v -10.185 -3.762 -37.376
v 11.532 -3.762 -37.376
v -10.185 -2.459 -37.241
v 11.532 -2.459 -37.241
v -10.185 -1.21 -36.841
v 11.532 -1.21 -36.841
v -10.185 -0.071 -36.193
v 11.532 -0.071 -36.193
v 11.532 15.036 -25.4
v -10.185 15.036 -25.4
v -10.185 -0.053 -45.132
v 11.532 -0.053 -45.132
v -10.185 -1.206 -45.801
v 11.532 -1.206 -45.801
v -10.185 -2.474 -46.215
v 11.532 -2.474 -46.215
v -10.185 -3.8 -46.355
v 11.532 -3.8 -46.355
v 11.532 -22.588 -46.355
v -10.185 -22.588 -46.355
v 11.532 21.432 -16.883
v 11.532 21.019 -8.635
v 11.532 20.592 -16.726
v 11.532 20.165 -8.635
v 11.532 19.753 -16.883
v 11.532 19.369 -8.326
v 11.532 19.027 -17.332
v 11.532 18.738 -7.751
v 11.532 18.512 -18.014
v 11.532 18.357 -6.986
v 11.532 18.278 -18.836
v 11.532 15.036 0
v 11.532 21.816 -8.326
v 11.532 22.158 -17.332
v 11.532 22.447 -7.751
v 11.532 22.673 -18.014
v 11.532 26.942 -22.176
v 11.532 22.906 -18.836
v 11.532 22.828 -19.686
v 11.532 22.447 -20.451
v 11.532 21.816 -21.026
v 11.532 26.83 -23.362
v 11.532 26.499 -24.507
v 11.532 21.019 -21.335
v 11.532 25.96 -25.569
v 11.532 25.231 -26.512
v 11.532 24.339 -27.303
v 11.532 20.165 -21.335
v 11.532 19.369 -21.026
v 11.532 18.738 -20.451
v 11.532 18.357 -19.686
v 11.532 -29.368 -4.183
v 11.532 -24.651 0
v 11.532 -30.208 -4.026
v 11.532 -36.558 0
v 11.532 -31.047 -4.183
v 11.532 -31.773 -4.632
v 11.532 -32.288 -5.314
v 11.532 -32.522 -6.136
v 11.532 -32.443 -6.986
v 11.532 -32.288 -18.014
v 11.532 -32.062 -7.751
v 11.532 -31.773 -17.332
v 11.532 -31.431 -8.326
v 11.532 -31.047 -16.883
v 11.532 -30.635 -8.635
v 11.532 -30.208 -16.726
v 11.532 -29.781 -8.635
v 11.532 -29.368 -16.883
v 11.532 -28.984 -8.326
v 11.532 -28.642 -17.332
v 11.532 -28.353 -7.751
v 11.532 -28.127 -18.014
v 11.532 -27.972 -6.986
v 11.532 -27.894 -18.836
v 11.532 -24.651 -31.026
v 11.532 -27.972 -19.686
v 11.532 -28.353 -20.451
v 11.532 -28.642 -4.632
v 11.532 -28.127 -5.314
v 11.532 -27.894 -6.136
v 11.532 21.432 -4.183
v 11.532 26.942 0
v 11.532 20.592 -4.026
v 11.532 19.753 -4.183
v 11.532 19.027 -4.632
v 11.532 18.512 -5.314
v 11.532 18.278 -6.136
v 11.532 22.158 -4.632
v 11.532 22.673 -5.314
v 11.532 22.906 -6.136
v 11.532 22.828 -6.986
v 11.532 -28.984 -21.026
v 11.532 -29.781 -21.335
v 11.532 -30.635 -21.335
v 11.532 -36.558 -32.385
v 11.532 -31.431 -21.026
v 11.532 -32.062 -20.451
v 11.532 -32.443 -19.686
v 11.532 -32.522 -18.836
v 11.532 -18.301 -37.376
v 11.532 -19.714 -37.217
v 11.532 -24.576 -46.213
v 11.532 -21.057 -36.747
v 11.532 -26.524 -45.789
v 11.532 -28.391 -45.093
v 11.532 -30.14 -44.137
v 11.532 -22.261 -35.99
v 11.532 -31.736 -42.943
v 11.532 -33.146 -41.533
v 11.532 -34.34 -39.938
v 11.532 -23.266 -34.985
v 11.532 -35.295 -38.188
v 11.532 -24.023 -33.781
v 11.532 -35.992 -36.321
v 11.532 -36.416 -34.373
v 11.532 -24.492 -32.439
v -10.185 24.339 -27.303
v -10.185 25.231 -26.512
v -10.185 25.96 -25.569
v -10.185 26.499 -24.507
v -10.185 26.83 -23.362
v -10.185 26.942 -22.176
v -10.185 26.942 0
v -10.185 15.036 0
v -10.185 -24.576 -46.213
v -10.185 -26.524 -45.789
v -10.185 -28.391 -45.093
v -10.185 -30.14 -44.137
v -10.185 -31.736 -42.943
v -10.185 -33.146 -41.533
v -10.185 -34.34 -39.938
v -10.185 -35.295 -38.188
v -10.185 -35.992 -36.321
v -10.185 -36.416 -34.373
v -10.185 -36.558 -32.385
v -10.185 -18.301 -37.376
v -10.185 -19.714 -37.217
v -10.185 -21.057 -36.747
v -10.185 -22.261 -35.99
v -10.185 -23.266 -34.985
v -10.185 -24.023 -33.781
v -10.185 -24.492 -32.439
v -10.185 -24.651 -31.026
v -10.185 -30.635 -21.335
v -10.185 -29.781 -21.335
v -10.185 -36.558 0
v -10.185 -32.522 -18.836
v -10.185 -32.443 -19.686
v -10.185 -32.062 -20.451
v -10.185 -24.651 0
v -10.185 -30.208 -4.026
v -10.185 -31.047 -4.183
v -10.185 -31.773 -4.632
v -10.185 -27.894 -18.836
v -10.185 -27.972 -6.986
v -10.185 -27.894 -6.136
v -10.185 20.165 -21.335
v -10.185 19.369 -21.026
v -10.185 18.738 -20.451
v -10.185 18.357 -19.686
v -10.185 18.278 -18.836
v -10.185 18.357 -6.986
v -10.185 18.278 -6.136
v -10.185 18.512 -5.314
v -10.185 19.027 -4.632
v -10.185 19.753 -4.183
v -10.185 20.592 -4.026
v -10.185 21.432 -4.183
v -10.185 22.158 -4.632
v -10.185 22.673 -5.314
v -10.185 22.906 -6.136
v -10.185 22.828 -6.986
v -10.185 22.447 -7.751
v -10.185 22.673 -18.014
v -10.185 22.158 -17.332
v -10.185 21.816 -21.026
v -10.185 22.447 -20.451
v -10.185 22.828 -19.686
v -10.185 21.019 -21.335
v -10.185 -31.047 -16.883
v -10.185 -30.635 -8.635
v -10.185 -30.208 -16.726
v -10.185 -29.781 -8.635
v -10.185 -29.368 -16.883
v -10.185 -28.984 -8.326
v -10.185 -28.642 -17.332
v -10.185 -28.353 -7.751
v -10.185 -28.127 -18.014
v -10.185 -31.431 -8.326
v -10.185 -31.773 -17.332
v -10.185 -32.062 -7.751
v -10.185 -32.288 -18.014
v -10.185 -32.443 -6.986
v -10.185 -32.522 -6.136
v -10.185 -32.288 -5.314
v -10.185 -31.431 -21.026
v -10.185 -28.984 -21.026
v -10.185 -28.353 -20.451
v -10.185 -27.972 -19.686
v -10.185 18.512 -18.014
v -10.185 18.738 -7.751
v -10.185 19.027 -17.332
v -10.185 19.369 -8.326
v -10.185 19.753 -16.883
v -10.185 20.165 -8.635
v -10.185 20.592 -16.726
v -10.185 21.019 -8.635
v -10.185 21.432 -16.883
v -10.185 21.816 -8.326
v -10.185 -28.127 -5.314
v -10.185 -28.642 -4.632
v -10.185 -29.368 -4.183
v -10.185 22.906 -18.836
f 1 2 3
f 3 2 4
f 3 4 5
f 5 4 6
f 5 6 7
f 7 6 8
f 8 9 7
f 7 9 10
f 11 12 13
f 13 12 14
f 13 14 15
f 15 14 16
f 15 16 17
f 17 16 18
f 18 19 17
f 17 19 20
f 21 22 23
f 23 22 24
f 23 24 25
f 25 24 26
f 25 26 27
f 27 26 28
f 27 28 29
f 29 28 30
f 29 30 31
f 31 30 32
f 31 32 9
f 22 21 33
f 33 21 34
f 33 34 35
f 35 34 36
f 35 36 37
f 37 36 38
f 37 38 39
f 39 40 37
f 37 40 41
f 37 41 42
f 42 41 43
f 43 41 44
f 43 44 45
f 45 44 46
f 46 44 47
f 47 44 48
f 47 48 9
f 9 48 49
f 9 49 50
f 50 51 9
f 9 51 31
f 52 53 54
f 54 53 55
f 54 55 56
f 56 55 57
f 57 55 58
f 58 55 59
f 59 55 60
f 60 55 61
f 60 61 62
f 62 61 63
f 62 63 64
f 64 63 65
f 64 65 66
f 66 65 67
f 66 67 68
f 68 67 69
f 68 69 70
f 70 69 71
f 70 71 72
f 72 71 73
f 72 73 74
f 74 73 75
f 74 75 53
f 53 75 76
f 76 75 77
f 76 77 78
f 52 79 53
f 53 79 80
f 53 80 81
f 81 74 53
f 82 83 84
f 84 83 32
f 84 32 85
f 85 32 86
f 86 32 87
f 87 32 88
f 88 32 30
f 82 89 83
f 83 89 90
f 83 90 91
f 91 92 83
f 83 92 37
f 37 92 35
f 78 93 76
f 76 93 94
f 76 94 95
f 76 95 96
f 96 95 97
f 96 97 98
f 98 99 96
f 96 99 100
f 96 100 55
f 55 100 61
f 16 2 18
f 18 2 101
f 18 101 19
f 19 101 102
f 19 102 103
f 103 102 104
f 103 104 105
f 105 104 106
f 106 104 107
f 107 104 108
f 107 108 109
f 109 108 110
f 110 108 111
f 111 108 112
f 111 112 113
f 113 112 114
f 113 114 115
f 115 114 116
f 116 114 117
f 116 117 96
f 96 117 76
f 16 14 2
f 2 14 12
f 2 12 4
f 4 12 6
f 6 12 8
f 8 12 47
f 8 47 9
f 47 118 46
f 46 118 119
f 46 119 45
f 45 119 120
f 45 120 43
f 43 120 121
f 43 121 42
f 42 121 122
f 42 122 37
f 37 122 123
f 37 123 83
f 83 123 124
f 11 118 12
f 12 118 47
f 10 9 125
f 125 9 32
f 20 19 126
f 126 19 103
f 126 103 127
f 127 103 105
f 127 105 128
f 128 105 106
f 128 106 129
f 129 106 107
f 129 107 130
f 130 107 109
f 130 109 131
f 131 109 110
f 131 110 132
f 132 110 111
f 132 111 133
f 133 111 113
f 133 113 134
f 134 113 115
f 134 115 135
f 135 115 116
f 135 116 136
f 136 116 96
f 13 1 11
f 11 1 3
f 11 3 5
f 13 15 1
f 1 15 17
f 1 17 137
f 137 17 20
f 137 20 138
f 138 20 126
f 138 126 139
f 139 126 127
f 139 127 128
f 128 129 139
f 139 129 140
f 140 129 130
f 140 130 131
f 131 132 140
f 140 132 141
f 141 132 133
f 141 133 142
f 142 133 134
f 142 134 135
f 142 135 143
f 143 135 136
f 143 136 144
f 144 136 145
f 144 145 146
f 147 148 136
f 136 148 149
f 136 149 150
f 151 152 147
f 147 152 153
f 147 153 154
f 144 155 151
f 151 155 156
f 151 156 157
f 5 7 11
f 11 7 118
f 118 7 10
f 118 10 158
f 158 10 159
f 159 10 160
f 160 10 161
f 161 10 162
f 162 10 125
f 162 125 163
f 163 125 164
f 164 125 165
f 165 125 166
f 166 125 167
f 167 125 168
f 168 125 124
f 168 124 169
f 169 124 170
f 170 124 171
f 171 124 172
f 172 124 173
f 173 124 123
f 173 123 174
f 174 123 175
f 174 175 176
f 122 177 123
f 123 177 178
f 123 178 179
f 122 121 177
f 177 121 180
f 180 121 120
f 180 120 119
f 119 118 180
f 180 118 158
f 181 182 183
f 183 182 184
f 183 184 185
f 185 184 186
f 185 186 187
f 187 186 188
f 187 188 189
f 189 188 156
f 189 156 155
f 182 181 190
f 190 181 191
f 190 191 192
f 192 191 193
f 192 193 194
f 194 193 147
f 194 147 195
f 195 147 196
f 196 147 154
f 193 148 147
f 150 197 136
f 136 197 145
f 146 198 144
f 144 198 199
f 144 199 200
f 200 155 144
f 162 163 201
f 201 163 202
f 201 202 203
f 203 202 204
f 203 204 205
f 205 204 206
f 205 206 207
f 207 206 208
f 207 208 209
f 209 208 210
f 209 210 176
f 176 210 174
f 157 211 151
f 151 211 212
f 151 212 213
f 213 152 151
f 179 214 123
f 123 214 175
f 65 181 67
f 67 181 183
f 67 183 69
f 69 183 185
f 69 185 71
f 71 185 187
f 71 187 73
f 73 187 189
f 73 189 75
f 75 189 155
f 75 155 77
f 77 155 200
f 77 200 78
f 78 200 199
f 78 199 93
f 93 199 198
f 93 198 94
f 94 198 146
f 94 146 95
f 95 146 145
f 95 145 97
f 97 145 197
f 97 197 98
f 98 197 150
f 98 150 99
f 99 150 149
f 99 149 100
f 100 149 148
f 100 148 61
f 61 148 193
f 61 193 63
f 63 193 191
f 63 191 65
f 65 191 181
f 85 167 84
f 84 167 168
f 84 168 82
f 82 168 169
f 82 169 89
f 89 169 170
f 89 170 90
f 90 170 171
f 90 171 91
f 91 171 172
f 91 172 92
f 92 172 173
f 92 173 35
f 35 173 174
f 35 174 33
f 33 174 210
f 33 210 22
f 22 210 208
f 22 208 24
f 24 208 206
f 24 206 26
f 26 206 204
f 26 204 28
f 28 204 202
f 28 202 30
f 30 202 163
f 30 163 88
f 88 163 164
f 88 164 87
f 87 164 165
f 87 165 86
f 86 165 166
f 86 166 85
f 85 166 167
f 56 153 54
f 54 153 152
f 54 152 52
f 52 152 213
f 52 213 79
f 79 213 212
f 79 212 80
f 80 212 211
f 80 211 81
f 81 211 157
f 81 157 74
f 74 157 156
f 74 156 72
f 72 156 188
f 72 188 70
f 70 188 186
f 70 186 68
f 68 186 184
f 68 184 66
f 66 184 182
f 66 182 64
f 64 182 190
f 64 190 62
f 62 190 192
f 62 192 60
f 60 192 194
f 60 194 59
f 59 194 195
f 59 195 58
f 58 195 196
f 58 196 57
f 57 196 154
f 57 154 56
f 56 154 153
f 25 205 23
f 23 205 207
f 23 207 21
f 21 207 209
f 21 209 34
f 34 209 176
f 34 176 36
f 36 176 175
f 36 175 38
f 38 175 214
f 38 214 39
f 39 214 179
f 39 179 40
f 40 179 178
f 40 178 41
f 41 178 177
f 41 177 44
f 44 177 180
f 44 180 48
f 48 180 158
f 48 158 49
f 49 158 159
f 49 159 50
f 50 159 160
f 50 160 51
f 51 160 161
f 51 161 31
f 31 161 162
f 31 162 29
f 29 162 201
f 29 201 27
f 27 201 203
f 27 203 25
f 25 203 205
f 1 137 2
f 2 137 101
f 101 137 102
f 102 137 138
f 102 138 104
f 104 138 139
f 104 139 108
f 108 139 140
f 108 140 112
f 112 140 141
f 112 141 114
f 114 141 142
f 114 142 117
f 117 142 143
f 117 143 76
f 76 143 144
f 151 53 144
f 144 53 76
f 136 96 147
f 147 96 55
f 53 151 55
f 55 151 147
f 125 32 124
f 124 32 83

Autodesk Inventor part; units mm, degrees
ref_plane "YZ Plane" through (0, 0, 0) normal (1, 0, 0) x (0, 1, 0)
ref_plane "XZ Plane" through (0, 0, 0) normal (0, 1, 0) x (-1, 0, 0)
ref_plane "XY Plane" through (0, 0, 0) normal (0, 0, 1) x (1, 0, 0)
sketch "Sketch4" plane through (0, 0, 0) normal (0, 0, 1) x (1, 0, 0)
  line L0 (10.9923, 14.2423) -> (-9.6452, 14.2423)
  line L1 (11.786, 15.036) -> (11.786, 25.9263)
  line L2 (13.3735, 26.9423) -> (11.786, 26.9423)
  line L3 (-10.439, 15.036) -> (-10.439, 25.9263)
  line L4 (-10.439, 26.9423) -> (-12.0265, 26.9423)
  arc A0 (-10.439, 15.036) -> (-9.6452, 14.2423) centre (-9.6452, 15.036) ccw
  arc A1 (10.9923, 14.2423) -> (11.786, 15.036) centre (10.9923, 15.036) ccw
  arc A2 (11.786, -24.6515) -> (10.9923, -23.8577) centre (10.9923, -24.6515) ccw
  line L5 (-9.6452, -23.8577) -> (10.9923, -23.8577)
  arc A3 (-9.6452, -23.8577) -> (-10.439, -24.6515) centre (-9.6452, -24.6515) ccw
  line L6 (-10.439, -24.6515) -> (-10.439, -36.5577)
  line L7 (11.786, -24.6515) -> (11.786, -36.5577)
  line L8 (11.786, 26.9423) -> (11.786, 25.9263)
  line L9 (-10.439, 26.9423) -> (-10.439, 25.9263)
  line L10 (11.786, -24.6515) -> (-10.439, -24.6515)
  line L11 (11.786, 15.036) -> (-10.439, 15.036)
  line L12 (11.786, 26.9423) -> (11.532, 26.9423)
  line L13 (11.532, 26.9423) -> (11.532, 15.036)
  line L14 (-10.439, 26.9423) -> (-10.185, 26.9423)
  line L15 (-10.185, 26.9423) -> (-10.185, 15.036)
  line L16 (11.532, 26.9423) -> (-10.185, 26.9423)
  line L17 (11.786, -24.6515) -> (11.532, -24.6515)
  line L18 (11.532, -24.6515) -> (11.532, -36.5577)
  line L19 (11.532, -36.5577) -> (11.786, -36.5577)
  line L20 (11.786, -36.5577) -> (11.786, -24.6515)
  line L21 (-10.439, -24.6515) -> (-10.185, -24.6515)
  line L22 (-10.185, -24.6515) -> (-10.185, -36.5577)
  line L23 (-10.185, -36.5577) -> (-10.439, -36.5577)
  line L24 (-10.439, -36.5577) -> (-10.439, -24.6515)
  line L25 (11.532, -36.5577) -> (-10.439, -36.5577)
  line L26 (0, 14.2423) -> (0, -23.8577)
  point P0 (0, 0)
  dimension "d5" = 22.225
  dimension "d6" = 0.254
  dimension "d7" = 0.254
  dimension "d14" = 38.1
extrude "Extrusion2" add sketch "Sketch4" against normal blind 25.4 contours L11 L15 L16 L13 | L18 L25 L22 L10
sketch "Sketch5" plane through (11.532, -36.5577, 0) normal (1, 0, 0) x (0, 0, -1)
  point P0 (0, 36.5577)
sketch "Sketch6" plane through (11.532, -36.5577, 0) normal (1, 0, 0) x (0, 0, -1)
  line L0 (0, 51.5938) -> (0, 63.5) projected
  line L1 (0, 51.5938) -> (25.4, 51.5938) projected
  line L2 (25.4, 63.5) -> (25.4, 51.5938) projected
  line L3 (0, 63.5) -> (25.4, 63.5) projected
  line L4 (0, 0) -> (0, 11.9062) projected
  line L5 (0, 0) -> (25.4, 0) projected
  line L6 (25.4, 11.9062) -> (25.4, 0) projected
  line L7 (0, 11.9062) -> (25.4, 11.9062) projected
  line L8 (25.4, 63.5) -> (25.4, 57.15)
  line L9 (25.4, 57.15) -> (19.05, 57.15)
  line L10 (25.4, 0) -> (25.4, 6.35)
  line L11 (25.4, 6.35) -> (19.05, 6.35)
  line L12 (25.4, 62.484) -> (25.4, 51.5938)
  line L13 (37.3758, 42.3425) -> (37.3758, 45.2438)
  line L14 (37.3758, 63.5) -> (25.4, 63.5)
  line L15 (37.3758, 0) -> (25.4, 0)
  line L16 (25.4, 63.5) -> (37.3758, 63.5)
  line L17 (46.355, 51.9072) -> (46.355, 11.5928)
  line L18 (37.3758, 0) -> (25.4, 0)
  line L19 (25.4, 51.5938) -> (31.0258, 51.5938)
  line L20 (25.4, 11.9062) -> (31.0258, 11.9062)
  arc A0 (37.3758, 45.2438) -> (31.0258, 51.5938) centre (31.0258, 45.2438) ccw
  line L21 (46.355, 51.9072) -> (46.355, 50.8)
  arc A1 (46.355, 50.8) -> (37.3758, 63.5) centre (33.6671, 51.3536) ccw
  arc A2 (31.0258, 11.9062) -> (37.3758, 18.2562) centre (31.0258, 18.2562) ccw
  line L22 (46.355, 11.5928) -> (46.355, 12.7)
  arc A3 (37.3758, 0) -> (46.355, 12.7) centre (33.6671, 12.1464) ccw
  line L23 (37.3758, 42.3425) -> (37.3758, 18.2562)
  line L24 (25.4, 6.35) -> (19.05, 6.35)
  circle A4 centre (19.05, 57.15) radius 2.3241
  circle A5 centre (6.35, 57.15) radius 2.3241
  line L25 (25.4, 6.35) -> (19.05, 6.35)
  circle A6 centre (19.05, 6.35) radius 2.3241
  line L26 (19.05, 6.35) -> (6.35, 6.35)
  circle A7 centre (6.35, 6.35) radius 2.3241
  point P0 (0, 36.5577)
  dimension "d15" = 6.35
  dimension "d16" = 6.35
  dimension "d17" = 6.35
  dimension "d35" = 4.6482
  dimension "d36" = 4.6482
  dimension "d37" = 12.7
  dimension "d38" = 4.6482
extrude "Extrusion3" add sketch "Sketch6" against normal up to surface (21.717 mm away) contours L2 L14 A1 L17 A3 L15 L6 L20 A2 L23 L13 A0 L19
extrude "Extrusion4" cut sketch "Sketch6" along normal through all both and the other way through all contours A6 L26 L11 | L11 L26 A6 | A4 | A5 | A7
fillet "Fillet1" radius 13.97 2 edges at (0.6735, 26.9423, -37.3758) (0.6735, -36.5577, -37.3758)
fillet_without_effect "Fillet2"
sketch "Sketch7" plane through (11.532, 15.036, 0) normal (1, 0, 0) x (0, 0, -1)
  arc A0 (37.3758, -6.35) -> (31.0258, 0) centre (31.0258, -6.35) ccw
  line L0 (0, 0) -> (31.0258, 0)
  line L1 (0, 11.9063) -> (32.385, 11.9063)
  arc A1 (46.355, -2.0638) -> (32.385, 11.9063) centre (32.385, -2.0637) ccw
  line L2 (46.355, -37.6238) -> (46.355, -2.0638)
  arc A2 (31.0258, -39.6875) -> (37.3758, -33.3375) centre (31.0258, -33.3375) ccw
  line L3 (37.3758, -6.35) -> (37.3758, -33.3375)
  arc A3 (32.385, -51.5938) -> (46.355, -37.6238) centre (32.385, -37.6238) ccw
  line L4 (0, -39.6875) -> (31.0258, -39.6875)
  line L5 (0, -51.5938) -> (32.385, -51.5938)
  line L6 (37.3758, -6.35) -> (37.3758, -11.43)
  line L7 (37.3758, -11.43) -> (24.169, -11.43)
  line L8 (25.4, 10.8903) -> (25.4, 0)
  line L9 (37.3758, -11.43) -> (33.5658, -11.43)
  line L10 (25.4, 0) -> (33.5658, -11.43)
  line L11 (33.5658, -11.43) -> (37.3758, -16.763)
  line L12 (37.3758, -16.763) -> (46.355, -16.763)
  line L13 (25.4, 0) -> (25.4, 11.9063)
  line L14 (25.4, 11.9063) -> (46.355, -16.763)
  arc A4 (32.385, -51.5938) -> (46.355, -37.6238) centre (32.385, -37.6238) ccw projected
  line L15 (46.355, -37.6238) -> (46.355, -2.0638) projected
  arc A5 (46.355, -2.0638) -> (32.385, 11.9063) centre (32.385, -2.0637) ccw projected
  line L16 (0, 11.9063) -> (32.385, 11.9063) projected
  line L17 (0, 0) -> (0, 11.9063) projected
  line L18 (0, 0) -> (31.0258, 0) projected
  arc A6 (37.3758, -6.35) -> (31.0258, 0) centre (31.0258, -6.35) ccw projected
  line L19 (37.3758, -6.35) -> (37.3758, -33.3375) projected
  arc A7 (31.0258, -39.6875) -> (37.3758, -33.3375) centre (31.0258, -33.3375) ccw projected
  line L20 (0, -39.6875) -> (31.0258, -39.6875) projected
  line L21 (0, -51.5938) -> (0, -39.6875) projected
  line L22 (0, -51.5938) -> (32.385, -51.5938) projected
  circle A8 centre (19.05, -45.2438) radius 2.3241 projected
  circle A9 centre (6.35, 5.5563) radius 2.3241 projected
  circle A10 centre (6.35, -45.2438) radius 2.3241 projected
  circle A11 centre (19.05, 5.5563) radius 2.3241 projected
  line L23 (46.355, -37.6238) -> (43.4517, -37.6238)
  point P0 (0, -15.036)
  point P1 (36.7783, -3.6607)
  point P2 (35.3345, -1.6854)
  dimension "d43" = 5.08
  dimension "d44" = 3.81
extrude "Extrusion5" add sketch "Sketch7" against normal up to surface (21.717 mm away) contours L3 L7 L10 L0 A0 L14 | L3 L11 L7
extrude "Extrusion6" cut sketch "Sketch7" along normal through all both and the other way through all contours A0 L14 L1 A1 L2
fillet "Fillet3" radius 6.35 2 edges at (0.6735, 26.9423, -25.4) (0.6735, -1.727, -46.355)
fillet "Fillet4" radius 6.35 1 edges at (0.6735, -1.727, -37.3758)
properties part number "Front_support_Intake"
